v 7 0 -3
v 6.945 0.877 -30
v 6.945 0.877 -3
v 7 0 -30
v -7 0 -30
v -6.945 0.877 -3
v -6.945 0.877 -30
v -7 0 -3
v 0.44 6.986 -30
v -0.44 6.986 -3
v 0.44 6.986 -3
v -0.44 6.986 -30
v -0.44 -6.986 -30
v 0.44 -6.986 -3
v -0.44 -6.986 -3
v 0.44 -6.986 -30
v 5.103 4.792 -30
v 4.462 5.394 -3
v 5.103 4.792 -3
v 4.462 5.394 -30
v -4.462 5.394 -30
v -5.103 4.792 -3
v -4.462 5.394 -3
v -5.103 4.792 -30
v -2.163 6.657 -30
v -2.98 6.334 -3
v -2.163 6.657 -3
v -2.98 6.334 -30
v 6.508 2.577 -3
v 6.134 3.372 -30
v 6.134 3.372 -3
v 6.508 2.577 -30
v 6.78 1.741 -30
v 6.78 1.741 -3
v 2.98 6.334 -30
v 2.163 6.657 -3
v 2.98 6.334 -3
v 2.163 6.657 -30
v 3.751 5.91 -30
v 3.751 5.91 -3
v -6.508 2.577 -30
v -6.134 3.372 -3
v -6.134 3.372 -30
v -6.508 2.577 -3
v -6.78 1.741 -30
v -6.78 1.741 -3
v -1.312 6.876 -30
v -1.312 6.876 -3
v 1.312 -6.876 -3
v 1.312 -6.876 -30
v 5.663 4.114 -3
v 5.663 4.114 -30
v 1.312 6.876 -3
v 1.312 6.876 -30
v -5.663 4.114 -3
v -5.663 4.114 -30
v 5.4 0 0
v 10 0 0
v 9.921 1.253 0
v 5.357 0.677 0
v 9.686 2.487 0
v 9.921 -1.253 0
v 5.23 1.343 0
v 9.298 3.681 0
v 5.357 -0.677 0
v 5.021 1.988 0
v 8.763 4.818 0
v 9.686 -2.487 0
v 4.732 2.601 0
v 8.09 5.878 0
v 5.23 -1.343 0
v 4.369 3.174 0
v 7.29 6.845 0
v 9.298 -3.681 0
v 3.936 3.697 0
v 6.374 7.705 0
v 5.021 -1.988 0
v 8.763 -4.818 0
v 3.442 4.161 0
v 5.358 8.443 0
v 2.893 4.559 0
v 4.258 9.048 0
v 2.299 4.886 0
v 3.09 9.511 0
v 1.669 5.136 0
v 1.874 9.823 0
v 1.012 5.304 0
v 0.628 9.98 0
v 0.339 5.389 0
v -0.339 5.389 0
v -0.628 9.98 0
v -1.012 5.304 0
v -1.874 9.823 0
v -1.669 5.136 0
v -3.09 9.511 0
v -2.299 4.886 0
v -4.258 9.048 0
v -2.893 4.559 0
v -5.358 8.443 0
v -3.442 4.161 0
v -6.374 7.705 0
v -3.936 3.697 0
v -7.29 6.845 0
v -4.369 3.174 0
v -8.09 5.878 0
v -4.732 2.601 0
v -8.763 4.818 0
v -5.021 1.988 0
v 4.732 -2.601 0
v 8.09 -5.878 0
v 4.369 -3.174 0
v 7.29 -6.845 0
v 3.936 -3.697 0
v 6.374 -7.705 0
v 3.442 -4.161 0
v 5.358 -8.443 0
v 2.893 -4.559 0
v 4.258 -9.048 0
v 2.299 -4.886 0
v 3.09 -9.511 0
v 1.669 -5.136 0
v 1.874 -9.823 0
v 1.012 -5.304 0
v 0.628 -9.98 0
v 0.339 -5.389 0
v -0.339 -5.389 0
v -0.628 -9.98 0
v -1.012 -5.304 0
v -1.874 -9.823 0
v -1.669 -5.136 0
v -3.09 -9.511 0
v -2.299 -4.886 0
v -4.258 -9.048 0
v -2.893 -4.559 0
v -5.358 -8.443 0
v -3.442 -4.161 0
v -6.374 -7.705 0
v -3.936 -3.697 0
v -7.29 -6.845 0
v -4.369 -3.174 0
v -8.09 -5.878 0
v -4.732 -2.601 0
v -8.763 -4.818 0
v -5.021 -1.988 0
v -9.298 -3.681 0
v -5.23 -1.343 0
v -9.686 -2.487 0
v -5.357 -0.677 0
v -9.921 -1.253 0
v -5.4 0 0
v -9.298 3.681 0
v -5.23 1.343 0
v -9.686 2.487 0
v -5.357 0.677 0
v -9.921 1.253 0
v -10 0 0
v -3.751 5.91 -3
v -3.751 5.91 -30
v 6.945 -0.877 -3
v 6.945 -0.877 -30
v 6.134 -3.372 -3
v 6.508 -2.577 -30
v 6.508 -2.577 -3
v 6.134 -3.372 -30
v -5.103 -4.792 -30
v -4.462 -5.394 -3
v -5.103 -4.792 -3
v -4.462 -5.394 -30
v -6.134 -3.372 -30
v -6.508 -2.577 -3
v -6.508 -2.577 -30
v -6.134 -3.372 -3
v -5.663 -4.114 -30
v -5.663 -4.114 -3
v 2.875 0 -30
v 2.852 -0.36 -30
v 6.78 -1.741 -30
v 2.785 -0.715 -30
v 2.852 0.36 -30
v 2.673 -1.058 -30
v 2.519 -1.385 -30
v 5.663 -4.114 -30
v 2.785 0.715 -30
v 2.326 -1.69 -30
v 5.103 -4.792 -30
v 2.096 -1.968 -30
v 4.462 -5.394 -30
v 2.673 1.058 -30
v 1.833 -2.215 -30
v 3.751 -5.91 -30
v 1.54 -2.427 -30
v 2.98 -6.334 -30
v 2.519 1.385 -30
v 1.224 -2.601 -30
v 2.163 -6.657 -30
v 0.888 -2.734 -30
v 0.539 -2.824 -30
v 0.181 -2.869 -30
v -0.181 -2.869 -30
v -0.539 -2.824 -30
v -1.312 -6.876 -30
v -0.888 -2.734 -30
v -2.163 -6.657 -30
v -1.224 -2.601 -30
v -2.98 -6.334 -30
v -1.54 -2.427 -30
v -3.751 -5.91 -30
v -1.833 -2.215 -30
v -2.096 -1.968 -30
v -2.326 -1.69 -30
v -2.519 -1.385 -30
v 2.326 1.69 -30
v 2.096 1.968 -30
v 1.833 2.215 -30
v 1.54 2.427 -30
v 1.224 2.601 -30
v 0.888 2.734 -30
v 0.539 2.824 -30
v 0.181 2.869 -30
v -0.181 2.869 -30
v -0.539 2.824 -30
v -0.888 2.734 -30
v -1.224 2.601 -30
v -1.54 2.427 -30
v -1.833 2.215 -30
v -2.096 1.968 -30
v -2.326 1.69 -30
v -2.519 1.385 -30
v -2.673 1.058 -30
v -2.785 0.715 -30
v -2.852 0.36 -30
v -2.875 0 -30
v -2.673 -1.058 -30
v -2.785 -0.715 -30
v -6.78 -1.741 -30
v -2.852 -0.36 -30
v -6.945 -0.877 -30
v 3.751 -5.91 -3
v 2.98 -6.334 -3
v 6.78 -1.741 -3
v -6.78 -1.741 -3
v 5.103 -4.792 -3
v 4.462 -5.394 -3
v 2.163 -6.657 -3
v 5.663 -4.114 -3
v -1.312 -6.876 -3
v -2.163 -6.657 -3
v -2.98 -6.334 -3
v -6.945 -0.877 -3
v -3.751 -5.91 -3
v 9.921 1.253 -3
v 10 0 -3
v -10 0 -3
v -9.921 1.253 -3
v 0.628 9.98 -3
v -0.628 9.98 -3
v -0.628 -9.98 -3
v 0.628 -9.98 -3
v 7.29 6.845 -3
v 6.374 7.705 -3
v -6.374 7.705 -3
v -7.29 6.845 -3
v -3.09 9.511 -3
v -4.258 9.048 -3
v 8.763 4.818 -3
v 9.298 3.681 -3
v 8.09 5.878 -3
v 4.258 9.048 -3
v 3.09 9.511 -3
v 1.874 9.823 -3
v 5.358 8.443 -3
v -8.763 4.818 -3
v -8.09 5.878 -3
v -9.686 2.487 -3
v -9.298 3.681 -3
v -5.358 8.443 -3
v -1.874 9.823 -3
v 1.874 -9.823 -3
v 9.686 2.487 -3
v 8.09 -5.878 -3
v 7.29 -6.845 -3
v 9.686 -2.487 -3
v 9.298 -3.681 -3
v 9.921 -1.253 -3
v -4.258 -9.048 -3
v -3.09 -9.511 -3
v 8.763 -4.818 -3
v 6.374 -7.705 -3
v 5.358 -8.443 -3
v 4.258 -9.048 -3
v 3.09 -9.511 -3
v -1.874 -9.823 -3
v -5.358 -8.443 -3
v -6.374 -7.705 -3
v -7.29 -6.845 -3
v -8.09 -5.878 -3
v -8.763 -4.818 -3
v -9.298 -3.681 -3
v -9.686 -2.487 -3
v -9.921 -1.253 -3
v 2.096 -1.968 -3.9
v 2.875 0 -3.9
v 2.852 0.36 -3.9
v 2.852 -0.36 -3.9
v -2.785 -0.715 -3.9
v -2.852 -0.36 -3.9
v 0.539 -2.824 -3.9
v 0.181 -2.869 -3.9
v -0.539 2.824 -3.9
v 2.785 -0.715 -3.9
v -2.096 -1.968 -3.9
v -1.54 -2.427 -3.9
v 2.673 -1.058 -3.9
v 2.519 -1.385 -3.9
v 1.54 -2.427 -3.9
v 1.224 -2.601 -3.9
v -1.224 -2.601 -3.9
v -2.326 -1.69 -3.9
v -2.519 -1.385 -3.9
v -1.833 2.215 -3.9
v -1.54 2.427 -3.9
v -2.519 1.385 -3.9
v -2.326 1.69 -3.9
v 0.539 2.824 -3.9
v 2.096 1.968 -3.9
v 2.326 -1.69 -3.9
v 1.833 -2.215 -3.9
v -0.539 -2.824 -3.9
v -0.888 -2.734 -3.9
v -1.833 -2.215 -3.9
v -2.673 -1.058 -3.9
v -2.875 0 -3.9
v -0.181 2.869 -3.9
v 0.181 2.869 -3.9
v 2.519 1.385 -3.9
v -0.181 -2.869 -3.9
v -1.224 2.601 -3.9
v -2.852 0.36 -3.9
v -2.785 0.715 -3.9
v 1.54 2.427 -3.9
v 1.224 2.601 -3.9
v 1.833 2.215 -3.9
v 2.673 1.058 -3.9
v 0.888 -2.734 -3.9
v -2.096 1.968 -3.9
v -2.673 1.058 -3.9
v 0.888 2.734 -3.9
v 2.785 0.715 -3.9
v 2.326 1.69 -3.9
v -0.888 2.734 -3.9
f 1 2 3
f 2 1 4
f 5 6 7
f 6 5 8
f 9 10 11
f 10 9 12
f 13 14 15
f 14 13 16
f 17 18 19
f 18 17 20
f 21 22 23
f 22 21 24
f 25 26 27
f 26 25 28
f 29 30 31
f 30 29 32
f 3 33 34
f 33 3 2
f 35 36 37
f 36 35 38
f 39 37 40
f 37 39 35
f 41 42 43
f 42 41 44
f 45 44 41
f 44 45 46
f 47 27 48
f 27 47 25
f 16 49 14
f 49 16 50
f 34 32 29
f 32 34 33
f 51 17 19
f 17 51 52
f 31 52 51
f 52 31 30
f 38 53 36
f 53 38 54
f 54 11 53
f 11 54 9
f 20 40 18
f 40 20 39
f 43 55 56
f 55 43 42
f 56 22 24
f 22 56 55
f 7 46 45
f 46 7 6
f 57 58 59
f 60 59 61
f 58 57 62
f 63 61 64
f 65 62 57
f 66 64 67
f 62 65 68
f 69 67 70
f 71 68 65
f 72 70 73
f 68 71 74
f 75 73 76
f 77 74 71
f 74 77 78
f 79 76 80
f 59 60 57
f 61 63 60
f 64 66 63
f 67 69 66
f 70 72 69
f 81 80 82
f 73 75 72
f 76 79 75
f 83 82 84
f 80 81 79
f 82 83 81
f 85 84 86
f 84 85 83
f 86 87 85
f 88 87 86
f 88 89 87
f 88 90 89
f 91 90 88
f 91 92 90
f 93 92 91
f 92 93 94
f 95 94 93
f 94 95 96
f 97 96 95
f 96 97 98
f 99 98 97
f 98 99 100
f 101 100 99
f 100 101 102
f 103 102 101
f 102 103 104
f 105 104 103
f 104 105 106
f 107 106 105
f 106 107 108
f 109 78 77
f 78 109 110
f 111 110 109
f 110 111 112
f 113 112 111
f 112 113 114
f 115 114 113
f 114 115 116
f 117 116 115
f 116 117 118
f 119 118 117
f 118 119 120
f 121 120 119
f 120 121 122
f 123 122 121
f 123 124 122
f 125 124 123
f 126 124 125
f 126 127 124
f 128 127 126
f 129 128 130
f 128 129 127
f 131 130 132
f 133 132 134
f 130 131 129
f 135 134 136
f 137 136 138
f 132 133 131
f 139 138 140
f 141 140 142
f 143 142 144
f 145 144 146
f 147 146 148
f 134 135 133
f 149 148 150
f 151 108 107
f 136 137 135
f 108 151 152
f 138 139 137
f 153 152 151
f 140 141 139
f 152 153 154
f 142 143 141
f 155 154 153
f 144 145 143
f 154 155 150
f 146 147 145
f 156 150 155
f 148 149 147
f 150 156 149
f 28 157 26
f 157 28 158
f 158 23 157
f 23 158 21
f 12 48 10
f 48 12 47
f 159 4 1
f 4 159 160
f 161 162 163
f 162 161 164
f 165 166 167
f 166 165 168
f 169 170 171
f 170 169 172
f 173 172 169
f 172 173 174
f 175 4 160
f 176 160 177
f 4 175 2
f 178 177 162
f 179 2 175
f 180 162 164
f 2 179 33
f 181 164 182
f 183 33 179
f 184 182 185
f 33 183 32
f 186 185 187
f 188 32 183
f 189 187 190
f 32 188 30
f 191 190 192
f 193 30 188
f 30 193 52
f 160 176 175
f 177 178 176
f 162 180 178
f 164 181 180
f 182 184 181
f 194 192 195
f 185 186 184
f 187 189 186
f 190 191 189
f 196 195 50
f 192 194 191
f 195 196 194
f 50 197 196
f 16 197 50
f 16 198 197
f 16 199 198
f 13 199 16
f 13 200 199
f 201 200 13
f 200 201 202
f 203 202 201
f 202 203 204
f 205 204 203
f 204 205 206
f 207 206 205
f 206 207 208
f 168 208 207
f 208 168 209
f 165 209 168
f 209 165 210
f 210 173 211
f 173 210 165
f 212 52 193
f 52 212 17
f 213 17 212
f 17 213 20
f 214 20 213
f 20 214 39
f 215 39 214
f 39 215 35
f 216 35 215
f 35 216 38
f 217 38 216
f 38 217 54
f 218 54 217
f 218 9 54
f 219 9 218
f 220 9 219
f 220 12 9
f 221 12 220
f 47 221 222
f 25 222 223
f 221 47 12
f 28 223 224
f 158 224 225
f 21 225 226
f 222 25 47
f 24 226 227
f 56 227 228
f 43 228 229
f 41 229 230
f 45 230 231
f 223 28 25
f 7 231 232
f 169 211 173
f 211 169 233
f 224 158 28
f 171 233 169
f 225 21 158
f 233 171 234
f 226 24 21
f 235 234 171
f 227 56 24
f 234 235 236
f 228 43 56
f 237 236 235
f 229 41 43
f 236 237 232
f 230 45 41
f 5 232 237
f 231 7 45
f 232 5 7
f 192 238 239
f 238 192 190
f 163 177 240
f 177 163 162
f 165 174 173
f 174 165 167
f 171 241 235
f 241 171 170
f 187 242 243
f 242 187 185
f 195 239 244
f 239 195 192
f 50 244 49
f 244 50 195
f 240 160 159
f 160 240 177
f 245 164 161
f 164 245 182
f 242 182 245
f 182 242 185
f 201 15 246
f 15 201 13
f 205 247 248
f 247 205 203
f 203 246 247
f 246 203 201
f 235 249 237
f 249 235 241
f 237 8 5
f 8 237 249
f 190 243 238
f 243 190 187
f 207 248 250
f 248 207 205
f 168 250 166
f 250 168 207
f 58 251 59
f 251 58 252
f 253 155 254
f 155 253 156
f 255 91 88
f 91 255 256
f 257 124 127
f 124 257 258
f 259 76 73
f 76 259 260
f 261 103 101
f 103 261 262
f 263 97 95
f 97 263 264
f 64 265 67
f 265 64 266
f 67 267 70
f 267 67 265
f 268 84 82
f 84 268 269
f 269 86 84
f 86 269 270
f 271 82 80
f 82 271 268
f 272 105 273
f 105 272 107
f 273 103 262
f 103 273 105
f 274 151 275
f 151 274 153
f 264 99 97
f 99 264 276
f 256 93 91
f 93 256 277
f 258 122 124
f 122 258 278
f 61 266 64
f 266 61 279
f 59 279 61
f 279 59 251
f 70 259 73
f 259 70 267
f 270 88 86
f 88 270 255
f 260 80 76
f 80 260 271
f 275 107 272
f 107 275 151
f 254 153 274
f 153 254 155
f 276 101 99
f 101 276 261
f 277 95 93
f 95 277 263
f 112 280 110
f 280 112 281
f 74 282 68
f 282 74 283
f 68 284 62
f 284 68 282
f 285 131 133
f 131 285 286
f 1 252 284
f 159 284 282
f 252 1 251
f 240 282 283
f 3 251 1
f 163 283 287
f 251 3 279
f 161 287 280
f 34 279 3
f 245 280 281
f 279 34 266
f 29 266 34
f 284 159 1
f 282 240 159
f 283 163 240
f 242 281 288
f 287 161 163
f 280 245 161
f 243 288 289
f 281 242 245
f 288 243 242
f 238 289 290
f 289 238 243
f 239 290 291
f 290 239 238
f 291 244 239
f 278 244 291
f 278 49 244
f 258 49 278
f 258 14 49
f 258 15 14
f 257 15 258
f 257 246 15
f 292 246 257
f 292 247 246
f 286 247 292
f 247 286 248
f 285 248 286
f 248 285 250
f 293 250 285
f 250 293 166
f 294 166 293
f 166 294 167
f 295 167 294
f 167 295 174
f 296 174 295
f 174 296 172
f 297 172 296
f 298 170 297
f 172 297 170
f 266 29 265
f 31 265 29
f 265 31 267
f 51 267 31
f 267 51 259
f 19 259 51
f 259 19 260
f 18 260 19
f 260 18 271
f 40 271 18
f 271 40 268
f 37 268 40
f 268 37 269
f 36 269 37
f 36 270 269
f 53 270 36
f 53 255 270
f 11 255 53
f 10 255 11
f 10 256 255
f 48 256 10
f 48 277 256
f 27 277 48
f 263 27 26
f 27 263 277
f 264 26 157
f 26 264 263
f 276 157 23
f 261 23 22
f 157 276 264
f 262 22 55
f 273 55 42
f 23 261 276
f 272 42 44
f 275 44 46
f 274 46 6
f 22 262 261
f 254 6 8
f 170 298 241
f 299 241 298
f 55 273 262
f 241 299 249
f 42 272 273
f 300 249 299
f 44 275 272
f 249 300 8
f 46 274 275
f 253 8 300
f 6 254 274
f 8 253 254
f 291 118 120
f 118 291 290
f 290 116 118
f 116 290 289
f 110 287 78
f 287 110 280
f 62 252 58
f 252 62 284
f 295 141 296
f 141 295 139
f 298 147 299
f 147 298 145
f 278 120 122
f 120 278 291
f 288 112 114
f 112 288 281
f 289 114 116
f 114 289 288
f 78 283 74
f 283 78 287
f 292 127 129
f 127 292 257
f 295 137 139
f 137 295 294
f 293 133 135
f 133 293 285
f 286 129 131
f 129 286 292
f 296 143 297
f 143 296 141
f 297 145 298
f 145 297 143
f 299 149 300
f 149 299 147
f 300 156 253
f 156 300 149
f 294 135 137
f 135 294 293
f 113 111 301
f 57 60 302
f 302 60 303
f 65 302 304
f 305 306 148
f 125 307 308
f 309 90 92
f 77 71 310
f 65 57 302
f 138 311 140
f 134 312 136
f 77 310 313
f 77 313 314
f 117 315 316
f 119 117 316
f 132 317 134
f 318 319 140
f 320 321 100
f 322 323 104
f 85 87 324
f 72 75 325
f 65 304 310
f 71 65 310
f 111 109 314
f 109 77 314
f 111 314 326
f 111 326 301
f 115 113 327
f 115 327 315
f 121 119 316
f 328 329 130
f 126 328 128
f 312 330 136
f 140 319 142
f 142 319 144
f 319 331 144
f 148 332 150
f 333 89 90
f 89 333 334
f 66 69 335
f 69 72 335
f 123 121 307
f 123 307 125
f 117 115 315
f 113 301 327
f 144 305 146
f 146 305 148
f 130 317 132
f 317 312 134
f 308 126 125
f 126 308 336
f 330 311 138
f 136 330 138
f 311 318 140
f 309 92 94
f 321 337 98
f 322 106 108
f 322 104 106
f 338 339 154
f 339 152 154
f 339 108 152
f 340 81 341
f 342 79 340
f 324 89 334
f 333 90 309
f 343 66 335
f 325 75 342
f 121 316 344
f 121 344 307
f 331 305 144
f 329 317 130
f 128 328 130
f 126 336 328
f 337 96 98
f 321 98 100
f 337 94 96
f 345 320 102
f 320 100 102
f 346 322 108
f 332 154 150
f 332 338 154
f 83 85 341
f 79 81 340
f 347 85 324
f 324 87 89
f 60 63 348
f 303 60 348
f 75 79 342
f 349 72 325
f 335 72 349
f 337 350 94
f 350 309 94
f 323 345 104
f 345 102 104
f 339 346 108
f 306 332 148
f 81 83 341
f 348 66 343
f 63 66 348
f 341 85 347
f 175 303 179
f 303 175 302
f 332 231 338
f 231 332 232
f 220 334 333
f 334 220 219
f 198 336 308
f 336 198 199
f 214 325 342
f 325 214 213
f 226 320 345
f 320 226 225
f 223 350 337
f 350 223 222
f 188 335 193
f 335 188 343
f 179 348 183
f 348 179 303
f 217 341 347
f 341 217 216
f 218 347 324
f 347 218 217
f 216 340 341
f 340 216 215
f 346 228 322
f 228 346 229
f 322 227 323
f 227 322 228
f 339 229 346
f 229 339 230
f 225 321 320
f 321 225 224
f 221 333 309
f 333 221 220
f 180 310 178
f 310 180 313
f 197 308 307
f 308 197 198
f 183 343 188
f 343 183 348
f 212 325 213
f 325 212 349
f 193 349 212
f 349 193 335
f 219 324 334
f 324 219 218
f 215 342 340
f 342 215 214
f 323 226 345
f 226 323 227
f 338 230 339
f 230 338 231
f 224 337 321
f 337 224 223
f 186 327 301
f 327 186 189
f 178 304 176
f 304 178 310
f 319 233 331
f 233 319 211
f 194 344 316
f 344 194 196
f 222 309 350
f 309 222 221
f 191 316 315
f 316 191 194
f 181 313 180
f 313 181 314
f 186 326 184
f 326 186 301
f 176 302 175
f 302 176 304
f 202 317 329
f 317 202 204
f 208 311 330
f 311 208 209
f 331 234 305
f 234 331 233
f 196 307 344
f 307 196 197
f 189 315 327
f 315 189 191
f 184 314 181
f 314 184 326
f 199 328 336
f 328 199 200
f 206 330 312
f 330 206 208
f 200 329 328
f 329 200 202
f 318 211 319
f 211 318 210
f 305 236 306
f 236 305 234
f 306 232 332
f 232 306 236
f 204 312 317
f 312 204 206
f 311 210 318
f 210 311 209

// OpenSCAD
$fn = 50;


difference() {
	union() {
		translate(v = [0, 0, -30.0000000000]) {
			cylinder(h = 30, r = 7.0000000000);
		}
		translate(v = [0, 0, -3.0000000000]) {
			cylinder(h = 3, r = 10.0000000000);
		}
	}
	union() {
		translate(v = [0, 0, 0]) {
			rotate(a = [0, 0, 0]) {
				difference() {
					union() {
						#translate(v = [0, 0, -30.0000000000]) {
							cylinder(h = 30, r = 2.6000000000);
						}
						#translate(v = [0, 0, -3.9000000000]) {
							cylinder(h = 3.9000000000, r1 = 2.8750000000, r2 = 5.4000000000);
						}
						#translate(v = [0, 0, -30.0000000000]) {
							cylinder(h = 30, r = 2.8750000000);
						}
						#translate(v = [0, 0, -30.0000000000]) {
							cylinder(h = 30, r = 2.6000000000);
						}
					}
					union();
				}
			}
		}
	}
}
